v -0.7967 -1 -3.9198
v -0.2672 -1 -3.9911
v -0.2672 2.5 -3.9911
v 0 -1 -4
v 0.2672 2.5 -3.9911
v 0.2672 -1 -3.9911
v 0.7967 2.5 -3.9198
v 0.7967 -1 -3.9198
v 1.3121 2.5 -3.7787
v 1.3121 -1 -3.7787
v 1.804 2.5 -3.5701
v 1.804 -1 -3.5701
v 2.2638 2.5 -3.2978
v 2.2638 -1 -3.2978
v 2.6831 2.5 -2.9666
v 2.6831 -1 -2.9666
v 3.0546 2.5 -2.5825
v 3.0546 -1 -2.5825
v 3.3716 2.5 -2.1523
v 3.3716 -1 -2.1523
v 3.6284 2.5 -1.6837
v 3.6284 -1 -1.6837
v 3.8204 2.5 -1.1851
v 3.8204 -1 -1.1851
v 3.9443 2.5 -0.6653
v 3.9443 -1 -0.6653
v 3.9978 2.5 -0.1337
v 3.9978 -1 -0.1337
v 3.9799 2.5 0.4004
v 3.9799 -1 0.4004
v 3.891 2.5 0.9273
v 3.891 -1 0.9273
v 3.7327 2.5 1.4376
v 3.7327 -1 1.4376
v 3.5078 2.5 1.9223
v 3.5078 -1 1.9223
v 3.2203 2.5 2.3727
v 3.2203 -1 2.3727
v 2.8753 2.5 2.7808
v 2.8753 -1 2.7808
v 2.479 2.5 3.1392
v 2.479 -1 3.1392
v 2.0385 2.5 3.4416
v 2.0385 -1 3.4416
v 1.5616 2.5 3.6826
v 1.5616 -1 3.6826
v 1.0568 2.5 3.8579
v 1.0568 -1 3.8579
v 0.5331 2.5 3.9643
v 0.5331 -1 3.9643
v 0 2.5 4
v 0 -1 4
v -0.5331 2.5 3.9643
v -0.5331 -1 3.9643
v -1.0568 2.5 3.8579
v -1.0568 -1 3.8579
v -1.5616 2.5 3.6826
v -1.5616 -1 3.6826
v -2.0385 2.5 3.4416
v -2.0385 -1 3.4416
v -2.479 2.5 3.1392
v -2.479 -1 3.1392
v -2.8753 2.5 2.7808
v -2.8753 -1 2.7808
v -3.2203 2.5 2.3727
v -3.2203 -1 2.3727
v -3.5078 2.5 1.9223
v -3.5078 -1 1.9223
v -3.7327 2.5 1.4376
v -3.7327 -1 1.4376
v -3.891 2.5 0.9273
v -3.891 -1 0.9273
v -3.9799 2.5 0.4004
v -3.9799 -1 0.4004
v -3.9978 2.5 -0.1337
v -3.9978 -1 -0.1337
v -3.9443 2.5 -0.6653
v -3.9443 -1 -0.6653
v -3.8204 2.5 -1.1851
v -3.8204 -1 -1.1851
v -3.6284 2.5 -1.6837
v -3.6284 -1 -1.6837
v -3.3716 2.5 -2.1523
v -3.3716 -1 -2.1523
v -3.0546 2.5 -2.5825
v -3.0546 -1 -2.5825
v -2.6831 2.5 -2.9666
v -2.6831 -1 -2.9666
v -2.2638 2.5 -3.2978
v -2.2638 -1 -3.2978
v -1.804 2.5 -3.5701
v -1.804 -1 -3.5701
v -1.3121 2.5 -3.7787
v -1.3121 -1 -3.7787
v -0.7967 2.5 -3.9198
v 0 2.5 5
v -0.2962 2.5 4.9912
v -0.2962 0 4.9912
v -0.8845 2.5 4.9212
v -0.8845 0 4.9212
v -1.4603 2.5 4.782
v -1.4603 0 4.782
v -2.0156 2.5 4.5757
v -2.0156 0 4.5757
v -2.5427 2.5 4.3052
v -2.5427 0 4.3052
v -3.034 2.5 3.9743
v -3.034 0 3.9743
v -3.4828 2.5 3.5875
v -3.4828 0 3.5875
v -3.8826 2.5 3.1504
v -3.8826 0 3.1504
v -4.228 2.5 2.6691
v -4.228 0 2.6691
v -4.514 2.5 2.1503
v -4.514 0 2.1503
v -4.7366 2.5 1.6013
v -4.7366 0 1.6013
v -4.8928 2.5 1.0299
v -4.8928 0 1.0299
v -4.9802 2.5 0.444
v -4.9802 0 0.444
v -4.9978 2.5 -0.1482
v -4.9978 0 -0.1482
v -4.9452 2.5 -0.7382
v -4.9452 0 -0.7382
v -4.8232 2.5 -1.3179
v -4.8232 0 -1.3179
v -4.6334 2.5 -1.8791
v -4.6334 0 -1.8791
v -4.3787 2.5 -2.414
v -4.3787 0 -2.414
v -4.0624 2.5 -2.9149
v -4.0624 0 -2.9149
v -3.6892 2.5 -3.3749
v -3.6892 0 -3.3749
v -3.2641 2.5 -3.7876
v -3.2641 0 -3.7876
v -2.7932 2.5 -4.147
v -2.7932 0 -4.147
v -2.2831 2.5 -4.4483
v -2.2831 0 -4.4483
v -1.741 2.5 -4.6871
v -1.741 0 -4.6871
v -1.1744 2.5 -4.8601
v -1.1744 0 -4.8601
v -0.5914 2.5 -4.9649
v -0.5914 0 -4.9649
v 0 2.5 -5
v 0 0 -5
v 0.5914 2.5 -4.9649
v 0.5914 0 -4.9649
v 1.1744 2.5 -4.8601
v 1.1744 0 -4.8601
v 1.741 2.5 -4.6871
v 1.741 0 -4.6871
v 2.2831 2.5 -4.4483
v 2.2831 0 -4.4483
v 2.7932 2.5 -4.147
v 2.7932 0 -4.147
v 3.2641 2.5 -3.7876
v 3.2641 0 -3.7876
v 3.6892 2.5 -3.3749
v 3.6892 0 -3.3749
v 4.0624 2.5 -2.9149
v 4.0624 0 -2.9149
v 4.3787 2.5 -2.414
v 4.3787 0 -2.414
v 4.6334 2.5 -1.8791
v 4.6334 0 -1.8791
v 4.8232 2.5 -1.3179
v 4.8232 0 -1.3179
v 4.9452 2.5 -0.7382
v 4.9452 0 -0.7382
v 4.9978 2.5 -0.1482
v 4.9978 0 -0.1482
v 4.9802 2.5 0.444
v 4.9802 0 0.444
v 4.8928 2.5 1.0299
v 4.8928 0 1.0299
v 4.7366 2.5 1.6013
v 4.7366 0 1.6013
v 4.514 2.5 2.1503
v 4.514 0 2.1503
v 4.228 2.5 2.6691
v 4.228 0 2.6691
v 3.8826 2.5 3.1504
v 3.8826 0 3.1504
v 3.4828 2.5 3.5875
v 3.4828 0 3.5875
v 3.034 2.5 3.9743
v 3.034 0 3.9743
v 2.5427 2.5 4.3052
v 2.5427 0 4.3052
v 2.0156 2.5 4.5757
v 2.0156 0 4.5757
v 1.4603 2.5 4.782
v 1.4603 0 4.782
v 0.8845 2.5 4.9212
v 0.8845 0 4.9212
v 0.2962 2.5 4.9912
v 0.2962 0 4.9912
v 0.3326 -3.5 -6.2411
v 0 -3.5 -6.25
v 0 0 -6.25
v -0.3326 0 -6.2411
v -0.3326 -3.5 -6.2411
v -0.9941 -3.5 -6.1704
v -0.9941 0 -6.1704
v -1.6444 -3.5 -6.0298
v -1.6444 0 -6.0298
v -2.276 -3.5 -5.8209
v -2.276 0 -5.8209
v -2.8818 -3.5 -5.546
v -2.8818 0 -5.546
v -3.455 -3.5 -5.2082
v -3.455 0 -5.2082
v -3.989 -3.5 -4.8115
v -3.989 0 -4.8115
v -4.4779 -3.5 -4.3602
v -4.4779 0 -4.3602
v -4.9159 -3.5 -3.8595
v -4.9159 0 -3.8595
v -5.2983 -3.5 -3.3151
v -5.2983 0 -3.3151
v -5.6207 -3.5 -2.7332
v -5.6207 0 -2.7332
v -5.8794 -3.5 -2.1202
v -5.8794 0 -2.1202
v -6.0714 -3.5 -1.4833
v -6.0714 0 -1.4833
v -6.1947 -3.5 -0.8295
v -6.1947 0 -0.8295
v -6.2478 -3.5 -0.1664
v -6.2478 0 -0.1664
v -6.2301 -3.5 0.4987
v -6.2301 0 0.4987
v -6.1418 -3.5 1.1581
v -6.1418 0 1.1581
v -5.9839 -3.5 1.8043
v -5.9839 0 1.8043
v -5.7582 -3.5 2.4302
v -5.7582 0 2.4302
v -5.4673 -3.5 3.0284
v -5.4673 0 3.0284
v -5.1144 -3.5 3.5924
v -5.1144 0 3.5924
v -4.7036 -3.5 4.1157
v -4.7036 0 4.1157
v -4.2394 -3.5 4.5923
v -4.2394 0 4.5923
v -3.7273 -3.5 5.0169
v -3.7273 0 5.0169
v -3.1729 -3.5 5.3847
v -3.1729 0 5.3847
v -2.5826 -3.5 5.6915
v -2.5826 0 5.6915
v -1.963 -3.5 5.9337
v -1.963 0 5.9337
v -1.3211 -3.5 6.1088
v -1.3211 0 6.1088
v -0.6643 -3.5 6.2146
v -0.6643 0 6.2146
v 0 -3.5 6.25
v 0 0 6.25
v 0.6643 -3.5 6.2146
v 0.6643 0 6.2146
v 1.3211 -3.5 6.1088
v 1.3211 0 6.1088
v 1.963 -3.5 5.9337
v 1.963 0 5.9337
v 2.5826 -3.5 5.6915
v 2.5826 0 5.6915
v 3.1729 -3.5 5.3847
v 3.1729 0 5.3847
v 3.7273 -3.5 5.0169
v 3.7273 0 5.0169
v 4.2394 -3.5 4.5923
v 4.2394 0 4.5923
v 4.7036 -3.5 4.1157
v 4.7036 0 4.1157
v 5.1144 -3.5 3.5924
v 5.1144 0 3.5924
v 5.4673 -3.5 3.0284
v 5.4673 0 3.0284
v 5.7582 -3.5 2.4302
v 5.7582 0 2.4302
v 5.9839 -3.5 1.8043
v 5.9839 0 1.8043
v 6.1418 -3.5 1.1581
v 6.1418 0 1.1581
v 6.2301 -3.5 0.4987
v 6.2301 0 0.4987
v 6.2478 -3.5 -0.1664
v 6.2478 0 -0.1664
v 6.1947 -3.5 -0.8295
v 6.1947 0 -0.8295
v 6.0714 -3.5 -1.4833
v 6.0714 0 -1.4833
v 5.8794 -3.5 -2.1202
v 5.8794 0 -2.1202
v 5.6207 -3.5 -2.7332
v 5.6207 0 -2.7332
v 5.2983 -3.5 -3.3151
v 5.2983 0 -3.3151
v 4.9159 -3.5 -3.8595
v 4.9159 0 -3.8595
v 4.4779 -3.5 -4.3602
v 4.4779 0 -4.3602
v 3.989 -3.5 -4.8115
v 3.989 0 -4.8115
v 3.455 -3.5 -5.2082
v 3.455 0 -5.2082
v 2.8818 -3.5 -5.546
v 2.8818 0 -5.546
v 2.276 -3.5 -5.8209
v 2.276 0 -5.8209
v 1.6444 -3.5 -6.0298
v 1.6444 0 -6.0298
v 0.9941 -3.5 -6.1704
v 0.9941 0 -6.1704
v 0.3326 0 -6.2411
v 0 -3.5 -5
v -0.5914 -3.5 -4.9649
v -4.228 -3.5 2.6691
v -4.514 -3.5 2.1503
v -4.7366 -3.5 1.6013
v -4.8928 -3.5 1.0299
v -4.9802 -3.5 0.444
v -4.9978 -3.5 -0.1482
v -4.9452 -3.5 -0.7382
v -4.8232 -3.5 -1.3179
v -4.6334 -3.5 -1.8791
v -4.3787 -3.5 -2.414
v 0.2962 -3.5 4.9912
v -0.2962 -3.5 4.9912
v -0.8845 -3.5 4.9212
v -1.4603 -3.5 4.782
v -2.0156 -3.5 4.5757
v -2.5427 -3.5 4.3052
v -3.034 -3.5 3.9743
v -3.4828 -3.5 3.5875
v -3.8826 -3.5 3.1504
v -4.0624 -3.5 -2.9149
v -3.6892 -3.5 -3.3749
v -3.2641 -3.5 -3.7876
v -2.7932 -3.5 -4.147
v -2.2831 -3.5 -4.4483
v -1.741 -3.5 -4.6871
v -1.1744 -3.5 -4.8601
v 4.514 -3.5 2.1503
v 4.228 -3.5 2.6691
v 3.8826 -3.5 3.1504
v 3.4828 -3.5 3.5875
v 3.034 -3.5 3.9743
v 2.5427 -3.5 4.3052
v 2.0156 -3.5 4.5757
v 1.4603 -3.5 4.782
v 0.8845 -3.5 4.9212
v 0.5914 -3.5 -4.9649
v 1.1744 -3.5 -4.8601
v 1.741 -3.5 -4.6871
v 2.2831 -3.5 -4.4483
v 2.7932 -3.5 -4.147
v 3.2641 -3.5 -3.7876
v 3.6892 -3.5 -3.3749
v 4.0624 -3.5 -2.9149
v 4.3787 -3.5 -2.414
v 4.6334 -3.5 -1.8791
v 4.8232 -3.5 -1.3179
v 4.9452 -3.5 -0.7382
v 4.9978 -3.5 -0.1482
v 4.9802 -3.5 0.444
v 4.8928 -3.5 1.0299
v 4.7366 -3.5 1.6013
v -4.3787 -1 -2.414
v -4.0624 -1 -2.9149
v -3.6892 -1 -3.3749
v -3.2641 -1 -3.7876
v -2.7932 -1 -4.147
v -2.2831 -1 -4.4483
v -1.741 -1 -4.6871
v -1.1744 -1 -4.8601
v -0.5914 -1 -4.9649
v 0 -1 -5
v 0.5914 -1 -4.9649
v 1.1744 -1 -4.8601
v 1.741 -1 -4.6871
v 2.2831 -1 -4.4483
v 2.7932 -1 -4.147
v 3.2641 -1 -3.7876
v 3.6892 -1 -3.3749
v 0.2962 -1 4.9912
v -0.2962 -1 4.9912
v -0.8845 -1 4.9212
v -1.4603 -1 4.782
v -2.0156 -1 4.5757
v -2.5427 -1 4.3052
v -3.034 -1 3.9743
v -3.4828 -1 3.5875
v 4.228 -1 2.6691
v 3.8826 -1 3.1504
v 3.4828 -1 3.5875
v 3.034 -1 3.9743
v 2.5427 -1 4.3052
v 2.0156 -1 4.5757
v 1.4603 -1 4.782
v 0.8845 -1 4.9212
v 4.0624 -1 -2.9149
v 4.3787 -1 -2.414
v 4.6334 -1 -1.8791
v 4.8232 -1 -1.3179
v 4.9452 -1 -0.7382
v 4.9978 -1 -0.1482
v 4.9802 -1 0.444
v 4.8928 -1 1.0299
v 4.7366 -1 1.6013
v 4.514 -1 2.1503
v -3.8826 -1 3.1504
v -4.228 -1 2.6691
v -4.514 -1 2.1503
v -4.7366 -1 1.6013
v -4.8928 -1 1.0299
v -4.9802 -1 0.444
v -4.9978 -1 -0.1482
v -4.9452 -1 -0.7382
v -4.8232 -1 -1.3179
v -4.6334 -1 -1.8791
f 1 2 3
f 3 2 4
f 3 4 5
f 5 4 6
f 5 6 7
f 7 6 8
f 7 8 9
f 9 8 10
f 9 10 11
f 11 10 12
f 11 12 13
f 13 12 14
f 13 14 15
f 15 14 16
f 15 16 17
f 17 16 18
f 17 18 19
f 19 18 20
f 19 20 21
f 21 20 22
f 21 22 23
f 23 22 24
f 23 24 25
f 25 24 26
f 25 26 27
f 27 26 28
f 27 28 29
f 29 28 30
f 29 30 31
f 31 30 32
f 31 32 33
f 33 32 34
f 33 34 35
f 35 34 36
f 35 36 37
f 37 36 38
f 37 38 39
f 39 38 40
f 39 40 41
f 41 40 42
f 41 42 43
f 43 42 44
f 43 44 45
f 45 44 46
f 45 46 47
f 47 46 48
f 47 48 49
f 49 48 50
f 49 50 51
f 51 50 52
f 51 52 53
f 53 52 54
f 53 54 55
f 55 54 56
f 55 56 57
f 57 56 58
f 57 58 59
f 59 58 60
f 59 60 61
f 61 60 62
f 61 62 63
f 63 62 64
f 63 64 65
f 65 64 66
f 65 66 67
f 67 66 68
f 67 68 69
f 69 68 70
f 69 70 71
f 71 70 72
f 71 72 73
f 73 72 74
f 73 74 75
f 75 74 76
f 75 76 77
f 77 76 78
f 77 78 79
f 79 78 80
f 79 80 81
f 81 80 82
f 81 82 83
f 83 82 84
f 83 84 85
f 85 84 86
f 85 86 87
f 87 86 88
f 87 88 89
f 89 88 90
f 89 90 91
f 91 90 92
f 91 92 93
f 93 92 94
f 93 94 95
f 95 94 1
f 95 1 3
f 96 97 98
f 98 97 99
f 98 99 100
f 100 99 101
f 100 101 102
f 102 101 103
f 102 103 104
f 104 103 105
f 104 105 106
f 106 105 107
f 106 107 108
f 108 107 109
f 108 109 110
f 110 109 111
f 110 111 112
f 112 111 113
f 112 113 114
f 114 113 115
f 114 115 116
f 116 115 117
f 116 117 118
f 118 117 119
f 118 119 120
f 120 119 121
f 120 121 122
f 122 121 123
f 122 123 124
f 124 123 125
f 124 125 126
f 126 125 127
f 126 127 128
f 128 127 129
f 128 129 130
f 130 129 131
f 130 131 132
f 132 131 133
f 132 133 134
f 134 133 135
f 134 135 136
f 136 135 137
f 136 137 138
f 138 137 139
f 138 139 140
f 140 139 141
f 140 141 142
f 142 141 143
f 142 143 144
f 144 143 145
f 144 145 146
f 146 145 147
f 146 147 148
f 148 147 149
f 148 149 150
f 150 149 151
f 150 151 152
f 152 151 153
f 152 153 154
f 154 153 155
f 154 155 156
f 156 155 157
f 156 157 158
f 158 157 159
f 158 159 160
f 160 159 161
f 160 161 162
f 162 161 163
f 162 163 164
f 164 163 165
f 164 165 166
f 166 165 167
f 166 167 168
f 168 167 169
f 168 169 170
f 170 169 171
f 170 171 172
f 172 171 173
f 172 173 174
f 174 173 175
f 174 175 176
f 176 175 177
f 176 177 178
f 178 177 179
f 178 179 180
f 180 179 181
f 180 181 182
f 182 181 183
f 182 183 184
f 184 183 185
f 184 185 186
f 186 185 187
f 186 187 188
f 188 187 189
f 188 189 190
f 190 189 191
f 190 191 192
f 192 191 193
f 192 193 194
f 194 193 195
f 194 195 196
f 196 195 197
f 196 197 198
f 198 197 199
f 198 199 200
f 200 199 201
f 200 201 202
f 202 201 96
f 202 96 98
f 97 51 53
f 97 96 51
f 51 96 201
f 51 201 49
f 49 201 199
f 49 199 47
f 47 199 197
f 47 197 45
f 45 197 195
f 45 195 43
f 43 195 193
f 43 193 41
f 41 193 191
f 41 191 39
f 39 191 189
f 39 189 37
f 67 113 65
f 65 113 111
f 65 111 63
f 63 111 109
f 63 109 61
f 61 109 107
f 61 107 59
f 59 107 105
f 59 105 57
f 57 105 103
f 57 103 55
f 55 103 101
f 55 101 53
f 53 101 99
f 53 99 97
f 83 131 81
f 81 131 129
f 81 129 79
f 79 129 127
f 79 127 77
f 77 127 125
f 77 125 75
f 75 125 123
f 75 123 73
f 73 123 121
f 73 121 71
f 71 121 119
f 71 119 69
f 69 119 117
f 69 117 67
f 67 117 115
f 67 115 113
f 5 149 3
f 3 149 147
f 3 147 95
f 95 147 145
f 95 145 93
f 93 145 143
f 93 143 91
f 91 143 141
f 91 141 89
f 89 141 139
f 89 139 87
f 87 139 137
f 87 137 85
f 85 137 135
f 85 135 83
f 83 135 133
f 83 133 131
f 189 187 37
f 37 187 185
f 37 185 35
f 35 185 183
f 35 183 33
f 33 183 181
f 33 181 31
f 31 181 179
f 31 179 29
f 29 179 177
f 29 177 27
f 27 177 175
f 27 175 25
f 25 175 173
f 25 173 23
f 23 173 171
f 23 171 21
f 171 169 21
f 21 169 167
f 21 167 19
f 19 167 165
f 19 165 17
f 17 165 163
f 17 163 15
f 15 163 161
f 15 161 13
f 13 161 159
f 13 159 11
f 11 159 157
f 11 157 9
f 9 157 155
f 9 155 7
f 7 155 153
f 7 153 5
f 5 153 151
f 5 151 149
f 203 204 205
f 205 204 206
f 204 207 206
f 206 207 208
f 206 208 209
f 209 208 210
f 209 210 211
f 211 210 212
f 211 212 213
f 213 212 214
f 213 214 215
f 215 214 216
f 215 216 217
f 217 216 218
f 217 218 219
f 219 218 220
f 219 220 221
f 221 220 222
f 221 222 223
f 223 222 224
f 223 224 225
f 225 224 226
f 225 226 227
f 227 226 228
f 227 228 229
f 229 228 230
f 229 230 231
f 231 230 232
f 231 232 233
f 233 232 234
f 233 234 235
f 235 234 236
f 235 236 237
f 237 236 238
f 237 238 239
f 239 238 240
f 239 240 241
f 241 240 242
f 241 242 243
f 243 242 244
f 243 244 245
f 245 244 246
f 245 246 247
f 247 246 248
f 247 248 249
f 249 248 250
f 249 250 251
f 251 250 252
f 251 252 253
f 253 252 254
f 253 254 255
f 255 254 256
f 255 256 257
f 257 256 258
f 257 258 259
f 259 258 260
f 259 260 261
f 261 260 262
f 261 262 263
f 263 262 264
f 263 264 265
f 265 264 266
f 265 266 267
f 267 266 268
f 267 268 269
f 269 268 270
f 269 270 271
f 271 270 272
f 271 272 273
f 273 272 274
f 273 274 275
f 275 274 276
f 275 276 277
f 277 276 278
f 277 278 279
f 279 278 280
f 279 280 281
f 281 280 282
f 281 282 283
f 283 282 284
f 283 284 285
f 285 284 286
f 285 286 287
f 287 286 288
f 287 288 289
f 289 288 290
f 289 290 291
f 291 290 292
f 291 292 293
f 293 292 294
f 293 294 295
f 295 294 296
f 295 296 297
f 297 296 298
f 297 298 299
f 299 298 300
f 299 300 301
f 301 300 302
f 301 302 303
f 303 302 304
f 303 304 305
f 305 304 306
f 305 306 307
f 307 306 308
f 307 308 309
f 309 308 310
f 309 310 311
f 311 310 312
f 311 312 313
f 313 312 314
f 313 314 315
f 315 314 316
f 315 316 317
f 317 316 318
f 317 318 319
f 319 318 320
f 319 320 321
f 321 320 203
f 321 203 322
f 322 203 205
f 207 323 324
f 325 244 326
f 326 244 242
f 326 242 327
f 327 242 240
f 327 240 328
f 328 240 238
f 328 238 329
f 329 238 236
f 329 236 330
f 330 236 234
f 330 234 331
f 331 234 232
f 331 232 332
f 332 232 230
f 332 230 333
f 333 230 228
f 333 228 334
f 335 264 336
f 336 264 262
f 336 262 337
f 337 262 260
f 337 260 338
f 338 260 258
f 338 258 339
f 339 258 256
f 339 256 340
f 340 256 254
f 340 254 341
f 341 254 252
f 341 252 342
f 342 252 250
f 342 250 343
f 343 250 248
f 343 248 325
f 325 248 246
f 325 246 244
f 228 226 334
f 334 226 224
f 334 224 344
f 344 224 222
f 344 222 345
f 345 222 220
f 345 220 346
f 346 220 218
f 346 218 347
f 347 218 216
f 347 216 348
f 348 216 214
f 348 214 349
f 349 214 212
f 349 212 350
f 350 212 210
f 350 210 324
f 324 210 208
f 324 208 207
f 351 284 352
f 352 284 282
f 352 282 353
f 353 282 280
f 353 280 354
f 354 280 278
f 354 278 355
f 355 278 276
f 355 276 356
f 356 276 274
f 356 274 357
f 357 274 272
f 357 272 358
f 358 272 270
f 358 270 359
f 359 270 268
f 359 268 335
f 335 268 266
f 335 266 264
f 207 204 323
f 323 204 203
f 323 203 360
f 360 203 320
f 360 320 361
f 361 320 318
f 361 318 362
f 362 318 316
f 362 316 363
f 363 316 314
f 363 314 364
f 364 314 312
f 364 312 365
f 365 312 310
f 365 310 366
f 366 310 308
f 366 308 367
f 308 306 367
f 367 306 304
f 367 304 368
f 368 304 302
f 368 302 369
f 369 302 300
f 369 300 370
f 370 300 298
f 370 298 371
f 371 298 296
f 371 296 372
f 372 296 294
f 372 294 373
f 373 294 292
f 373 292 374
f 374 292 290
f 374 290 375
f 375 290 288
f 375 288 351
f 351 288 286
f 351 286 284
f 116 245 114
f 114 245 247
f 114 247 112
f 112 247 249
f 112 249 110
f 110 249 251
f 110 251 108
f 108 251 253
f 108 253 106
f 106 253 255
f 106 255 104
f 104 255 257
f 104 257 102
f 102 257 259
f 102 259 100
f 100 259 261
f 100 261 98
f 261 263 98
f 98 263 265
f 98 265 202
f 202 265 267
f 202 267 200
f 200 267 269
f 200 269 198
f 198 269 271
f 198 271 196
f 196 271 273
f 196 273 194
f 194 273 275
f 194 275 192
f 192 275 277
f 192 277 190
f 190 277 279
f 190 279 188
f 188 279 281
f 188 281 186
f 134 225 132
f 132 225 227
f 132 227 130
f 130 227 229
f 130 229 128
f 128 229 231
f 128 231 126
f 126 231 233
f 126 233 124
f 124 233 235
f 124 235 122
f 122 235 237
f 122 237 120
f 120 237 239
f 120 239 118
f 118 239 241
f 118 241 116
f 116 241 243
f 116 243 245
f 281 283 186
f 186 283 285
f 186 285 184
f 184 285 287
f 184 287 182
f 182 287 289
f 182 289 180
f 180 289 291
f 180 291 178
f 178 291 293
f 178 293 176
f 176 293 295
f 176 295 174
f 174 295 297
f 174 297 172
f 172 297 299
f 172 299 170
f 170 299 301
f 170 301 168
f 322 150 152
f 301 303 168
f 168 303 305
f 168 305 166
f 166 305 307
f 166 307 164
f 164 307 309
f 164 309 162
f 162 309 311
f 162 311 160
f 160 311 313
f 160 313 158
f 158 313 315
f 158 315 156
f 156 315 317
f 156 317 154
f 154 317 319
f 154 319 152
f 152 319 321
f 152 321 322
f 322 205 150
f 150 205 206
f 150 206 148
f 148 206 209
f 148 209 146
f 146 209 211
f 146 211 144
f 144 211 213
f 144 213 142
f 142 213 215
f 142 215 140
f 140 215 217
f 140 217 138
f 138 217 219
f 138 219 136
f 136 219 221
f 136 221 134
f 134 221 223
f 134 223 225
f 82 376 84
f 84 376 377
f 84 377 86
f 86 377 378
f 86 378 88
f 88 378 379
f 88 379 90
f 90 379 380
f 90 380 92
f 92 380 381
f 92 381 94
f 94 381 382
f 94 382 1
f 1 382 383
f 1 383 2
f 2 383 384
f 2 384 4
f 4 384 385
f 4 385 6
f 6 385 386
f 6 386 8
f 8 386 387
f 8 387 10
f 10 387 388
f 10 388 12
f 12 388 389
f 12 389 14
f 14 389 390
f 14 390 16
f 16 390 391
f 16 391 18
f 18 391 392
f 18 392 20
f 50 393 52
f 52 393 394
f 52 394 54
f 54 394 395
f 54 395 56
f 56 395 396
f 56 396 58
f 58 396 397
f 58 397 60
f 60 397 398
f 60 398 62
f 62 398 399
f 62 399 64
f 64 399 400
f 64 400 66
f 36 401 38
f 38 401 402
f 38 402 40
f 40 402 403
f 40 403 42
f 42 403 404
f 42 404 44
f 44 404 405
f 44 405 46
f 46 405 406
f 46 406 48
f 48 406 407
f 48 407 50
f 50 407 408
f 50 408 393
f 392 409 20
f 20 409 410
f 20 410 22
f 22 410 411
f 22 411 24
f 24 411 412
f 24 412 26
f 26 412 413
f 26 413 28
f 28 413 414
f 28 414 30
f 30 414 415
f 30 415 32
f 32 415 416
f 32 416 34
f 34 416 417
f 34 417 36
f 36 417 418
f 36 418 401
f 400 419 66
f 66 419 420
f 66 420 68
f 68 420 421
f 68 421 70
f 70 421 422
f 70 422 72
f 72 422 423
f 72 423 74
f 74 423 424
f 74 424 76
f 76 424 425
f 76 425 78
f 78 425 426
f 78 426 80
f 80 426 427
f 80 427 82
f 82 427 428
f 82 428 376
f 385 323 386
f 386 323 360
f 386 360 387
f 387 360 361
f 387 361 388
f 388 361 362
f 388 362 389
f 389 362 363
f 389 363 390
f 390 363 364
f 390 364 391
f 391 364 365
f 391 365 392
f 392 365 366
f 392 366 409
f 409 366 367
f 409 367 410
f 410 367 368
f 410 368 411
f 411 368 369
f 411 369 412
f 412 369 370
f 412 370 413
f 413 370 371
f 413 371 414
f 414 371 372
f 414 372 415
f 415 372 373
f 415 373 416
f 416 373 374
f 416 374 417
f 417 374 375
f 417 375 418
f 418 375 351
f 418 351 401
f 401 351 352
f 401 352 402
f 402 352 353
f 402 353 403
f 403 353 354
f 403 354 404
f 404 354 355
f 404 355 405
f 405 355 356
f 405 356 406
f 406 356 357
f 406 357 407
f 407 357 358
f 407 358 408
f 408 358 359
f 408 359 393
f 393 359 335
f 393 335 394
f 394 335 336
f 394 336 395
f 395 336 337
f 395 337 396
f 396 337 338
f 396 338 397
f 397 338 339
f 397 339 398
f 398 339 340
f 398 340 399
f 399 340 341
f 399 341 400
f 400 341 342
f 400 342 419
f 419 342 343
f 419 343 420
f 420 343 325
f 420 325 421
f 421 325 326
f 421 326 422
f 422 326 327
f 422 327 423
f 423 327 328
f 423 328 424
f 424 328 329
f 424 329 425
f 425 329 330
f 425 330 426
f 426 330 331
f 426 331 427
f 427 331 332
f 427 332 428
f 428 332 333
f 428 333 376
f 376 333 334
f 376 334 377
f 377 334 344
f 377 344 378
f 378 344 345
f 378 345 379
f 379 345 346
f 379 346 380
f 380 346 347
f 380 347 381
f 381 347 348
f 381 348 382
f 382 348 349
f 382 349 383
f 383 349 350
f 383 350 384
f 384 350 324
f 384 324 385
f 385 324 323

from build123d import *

# Parameters (mm, degrees)
SKETCH1_R           = 5
BOSS_EXTRUDE1_DEPTH = 2.5
SKETCH2_R           = 6.25
BOSS_EXTRUDE2_DEPTH = 3.5
SKETCH3_R           = 4
CUT_EXTRUDE1_DEPTH  = 7.5
SKETCH4_R           = 5
CUT_EXTRUDE2_DEPTH  = 2.5


with BuildPart() as part:
    # Sketch1 → Boss-Extrude1 (new body)
    with BuildSketch(Plane(origin=(0, 0, 0), x_dir=(1, 0, 0), z_dir=(0, 1, 0))):
        Circle(SKETCH1_R)
    extrude(amount=BOSS_EXTRUDE1_DEPTH)

    # Sketch2 → Boss-Extrude2 (add)
    with BuildSketch(Plane.XZ):
        Circle(SKETCH2_R)
    extrude(amount=BOSS_EXTRUDE2_DEPTH)

    # Sketch3 → Cut-Extrude1 (cut)
    with BuildSketch(Plane(origin=(0, 2.5, 0), x_dir=(1, 0, 0), z_dir=(0, 1, 0))):
        Circle(SKETCH3_R)
    extrude(amount=-CUT_EXTRUDE1_DEPTH, mode=Mode.SUBTRACT)

    # Sketch4 → Cut-Extrude2 (cut)
    with BuildSketch(Plane.XZ.offset(3.5)):
        Circle(SKETCH4_R)
    extrude(amount=-CUT_EXTRUDE2_DEPTH, mode=Mode.SUBTRACT)


solid = part.part
